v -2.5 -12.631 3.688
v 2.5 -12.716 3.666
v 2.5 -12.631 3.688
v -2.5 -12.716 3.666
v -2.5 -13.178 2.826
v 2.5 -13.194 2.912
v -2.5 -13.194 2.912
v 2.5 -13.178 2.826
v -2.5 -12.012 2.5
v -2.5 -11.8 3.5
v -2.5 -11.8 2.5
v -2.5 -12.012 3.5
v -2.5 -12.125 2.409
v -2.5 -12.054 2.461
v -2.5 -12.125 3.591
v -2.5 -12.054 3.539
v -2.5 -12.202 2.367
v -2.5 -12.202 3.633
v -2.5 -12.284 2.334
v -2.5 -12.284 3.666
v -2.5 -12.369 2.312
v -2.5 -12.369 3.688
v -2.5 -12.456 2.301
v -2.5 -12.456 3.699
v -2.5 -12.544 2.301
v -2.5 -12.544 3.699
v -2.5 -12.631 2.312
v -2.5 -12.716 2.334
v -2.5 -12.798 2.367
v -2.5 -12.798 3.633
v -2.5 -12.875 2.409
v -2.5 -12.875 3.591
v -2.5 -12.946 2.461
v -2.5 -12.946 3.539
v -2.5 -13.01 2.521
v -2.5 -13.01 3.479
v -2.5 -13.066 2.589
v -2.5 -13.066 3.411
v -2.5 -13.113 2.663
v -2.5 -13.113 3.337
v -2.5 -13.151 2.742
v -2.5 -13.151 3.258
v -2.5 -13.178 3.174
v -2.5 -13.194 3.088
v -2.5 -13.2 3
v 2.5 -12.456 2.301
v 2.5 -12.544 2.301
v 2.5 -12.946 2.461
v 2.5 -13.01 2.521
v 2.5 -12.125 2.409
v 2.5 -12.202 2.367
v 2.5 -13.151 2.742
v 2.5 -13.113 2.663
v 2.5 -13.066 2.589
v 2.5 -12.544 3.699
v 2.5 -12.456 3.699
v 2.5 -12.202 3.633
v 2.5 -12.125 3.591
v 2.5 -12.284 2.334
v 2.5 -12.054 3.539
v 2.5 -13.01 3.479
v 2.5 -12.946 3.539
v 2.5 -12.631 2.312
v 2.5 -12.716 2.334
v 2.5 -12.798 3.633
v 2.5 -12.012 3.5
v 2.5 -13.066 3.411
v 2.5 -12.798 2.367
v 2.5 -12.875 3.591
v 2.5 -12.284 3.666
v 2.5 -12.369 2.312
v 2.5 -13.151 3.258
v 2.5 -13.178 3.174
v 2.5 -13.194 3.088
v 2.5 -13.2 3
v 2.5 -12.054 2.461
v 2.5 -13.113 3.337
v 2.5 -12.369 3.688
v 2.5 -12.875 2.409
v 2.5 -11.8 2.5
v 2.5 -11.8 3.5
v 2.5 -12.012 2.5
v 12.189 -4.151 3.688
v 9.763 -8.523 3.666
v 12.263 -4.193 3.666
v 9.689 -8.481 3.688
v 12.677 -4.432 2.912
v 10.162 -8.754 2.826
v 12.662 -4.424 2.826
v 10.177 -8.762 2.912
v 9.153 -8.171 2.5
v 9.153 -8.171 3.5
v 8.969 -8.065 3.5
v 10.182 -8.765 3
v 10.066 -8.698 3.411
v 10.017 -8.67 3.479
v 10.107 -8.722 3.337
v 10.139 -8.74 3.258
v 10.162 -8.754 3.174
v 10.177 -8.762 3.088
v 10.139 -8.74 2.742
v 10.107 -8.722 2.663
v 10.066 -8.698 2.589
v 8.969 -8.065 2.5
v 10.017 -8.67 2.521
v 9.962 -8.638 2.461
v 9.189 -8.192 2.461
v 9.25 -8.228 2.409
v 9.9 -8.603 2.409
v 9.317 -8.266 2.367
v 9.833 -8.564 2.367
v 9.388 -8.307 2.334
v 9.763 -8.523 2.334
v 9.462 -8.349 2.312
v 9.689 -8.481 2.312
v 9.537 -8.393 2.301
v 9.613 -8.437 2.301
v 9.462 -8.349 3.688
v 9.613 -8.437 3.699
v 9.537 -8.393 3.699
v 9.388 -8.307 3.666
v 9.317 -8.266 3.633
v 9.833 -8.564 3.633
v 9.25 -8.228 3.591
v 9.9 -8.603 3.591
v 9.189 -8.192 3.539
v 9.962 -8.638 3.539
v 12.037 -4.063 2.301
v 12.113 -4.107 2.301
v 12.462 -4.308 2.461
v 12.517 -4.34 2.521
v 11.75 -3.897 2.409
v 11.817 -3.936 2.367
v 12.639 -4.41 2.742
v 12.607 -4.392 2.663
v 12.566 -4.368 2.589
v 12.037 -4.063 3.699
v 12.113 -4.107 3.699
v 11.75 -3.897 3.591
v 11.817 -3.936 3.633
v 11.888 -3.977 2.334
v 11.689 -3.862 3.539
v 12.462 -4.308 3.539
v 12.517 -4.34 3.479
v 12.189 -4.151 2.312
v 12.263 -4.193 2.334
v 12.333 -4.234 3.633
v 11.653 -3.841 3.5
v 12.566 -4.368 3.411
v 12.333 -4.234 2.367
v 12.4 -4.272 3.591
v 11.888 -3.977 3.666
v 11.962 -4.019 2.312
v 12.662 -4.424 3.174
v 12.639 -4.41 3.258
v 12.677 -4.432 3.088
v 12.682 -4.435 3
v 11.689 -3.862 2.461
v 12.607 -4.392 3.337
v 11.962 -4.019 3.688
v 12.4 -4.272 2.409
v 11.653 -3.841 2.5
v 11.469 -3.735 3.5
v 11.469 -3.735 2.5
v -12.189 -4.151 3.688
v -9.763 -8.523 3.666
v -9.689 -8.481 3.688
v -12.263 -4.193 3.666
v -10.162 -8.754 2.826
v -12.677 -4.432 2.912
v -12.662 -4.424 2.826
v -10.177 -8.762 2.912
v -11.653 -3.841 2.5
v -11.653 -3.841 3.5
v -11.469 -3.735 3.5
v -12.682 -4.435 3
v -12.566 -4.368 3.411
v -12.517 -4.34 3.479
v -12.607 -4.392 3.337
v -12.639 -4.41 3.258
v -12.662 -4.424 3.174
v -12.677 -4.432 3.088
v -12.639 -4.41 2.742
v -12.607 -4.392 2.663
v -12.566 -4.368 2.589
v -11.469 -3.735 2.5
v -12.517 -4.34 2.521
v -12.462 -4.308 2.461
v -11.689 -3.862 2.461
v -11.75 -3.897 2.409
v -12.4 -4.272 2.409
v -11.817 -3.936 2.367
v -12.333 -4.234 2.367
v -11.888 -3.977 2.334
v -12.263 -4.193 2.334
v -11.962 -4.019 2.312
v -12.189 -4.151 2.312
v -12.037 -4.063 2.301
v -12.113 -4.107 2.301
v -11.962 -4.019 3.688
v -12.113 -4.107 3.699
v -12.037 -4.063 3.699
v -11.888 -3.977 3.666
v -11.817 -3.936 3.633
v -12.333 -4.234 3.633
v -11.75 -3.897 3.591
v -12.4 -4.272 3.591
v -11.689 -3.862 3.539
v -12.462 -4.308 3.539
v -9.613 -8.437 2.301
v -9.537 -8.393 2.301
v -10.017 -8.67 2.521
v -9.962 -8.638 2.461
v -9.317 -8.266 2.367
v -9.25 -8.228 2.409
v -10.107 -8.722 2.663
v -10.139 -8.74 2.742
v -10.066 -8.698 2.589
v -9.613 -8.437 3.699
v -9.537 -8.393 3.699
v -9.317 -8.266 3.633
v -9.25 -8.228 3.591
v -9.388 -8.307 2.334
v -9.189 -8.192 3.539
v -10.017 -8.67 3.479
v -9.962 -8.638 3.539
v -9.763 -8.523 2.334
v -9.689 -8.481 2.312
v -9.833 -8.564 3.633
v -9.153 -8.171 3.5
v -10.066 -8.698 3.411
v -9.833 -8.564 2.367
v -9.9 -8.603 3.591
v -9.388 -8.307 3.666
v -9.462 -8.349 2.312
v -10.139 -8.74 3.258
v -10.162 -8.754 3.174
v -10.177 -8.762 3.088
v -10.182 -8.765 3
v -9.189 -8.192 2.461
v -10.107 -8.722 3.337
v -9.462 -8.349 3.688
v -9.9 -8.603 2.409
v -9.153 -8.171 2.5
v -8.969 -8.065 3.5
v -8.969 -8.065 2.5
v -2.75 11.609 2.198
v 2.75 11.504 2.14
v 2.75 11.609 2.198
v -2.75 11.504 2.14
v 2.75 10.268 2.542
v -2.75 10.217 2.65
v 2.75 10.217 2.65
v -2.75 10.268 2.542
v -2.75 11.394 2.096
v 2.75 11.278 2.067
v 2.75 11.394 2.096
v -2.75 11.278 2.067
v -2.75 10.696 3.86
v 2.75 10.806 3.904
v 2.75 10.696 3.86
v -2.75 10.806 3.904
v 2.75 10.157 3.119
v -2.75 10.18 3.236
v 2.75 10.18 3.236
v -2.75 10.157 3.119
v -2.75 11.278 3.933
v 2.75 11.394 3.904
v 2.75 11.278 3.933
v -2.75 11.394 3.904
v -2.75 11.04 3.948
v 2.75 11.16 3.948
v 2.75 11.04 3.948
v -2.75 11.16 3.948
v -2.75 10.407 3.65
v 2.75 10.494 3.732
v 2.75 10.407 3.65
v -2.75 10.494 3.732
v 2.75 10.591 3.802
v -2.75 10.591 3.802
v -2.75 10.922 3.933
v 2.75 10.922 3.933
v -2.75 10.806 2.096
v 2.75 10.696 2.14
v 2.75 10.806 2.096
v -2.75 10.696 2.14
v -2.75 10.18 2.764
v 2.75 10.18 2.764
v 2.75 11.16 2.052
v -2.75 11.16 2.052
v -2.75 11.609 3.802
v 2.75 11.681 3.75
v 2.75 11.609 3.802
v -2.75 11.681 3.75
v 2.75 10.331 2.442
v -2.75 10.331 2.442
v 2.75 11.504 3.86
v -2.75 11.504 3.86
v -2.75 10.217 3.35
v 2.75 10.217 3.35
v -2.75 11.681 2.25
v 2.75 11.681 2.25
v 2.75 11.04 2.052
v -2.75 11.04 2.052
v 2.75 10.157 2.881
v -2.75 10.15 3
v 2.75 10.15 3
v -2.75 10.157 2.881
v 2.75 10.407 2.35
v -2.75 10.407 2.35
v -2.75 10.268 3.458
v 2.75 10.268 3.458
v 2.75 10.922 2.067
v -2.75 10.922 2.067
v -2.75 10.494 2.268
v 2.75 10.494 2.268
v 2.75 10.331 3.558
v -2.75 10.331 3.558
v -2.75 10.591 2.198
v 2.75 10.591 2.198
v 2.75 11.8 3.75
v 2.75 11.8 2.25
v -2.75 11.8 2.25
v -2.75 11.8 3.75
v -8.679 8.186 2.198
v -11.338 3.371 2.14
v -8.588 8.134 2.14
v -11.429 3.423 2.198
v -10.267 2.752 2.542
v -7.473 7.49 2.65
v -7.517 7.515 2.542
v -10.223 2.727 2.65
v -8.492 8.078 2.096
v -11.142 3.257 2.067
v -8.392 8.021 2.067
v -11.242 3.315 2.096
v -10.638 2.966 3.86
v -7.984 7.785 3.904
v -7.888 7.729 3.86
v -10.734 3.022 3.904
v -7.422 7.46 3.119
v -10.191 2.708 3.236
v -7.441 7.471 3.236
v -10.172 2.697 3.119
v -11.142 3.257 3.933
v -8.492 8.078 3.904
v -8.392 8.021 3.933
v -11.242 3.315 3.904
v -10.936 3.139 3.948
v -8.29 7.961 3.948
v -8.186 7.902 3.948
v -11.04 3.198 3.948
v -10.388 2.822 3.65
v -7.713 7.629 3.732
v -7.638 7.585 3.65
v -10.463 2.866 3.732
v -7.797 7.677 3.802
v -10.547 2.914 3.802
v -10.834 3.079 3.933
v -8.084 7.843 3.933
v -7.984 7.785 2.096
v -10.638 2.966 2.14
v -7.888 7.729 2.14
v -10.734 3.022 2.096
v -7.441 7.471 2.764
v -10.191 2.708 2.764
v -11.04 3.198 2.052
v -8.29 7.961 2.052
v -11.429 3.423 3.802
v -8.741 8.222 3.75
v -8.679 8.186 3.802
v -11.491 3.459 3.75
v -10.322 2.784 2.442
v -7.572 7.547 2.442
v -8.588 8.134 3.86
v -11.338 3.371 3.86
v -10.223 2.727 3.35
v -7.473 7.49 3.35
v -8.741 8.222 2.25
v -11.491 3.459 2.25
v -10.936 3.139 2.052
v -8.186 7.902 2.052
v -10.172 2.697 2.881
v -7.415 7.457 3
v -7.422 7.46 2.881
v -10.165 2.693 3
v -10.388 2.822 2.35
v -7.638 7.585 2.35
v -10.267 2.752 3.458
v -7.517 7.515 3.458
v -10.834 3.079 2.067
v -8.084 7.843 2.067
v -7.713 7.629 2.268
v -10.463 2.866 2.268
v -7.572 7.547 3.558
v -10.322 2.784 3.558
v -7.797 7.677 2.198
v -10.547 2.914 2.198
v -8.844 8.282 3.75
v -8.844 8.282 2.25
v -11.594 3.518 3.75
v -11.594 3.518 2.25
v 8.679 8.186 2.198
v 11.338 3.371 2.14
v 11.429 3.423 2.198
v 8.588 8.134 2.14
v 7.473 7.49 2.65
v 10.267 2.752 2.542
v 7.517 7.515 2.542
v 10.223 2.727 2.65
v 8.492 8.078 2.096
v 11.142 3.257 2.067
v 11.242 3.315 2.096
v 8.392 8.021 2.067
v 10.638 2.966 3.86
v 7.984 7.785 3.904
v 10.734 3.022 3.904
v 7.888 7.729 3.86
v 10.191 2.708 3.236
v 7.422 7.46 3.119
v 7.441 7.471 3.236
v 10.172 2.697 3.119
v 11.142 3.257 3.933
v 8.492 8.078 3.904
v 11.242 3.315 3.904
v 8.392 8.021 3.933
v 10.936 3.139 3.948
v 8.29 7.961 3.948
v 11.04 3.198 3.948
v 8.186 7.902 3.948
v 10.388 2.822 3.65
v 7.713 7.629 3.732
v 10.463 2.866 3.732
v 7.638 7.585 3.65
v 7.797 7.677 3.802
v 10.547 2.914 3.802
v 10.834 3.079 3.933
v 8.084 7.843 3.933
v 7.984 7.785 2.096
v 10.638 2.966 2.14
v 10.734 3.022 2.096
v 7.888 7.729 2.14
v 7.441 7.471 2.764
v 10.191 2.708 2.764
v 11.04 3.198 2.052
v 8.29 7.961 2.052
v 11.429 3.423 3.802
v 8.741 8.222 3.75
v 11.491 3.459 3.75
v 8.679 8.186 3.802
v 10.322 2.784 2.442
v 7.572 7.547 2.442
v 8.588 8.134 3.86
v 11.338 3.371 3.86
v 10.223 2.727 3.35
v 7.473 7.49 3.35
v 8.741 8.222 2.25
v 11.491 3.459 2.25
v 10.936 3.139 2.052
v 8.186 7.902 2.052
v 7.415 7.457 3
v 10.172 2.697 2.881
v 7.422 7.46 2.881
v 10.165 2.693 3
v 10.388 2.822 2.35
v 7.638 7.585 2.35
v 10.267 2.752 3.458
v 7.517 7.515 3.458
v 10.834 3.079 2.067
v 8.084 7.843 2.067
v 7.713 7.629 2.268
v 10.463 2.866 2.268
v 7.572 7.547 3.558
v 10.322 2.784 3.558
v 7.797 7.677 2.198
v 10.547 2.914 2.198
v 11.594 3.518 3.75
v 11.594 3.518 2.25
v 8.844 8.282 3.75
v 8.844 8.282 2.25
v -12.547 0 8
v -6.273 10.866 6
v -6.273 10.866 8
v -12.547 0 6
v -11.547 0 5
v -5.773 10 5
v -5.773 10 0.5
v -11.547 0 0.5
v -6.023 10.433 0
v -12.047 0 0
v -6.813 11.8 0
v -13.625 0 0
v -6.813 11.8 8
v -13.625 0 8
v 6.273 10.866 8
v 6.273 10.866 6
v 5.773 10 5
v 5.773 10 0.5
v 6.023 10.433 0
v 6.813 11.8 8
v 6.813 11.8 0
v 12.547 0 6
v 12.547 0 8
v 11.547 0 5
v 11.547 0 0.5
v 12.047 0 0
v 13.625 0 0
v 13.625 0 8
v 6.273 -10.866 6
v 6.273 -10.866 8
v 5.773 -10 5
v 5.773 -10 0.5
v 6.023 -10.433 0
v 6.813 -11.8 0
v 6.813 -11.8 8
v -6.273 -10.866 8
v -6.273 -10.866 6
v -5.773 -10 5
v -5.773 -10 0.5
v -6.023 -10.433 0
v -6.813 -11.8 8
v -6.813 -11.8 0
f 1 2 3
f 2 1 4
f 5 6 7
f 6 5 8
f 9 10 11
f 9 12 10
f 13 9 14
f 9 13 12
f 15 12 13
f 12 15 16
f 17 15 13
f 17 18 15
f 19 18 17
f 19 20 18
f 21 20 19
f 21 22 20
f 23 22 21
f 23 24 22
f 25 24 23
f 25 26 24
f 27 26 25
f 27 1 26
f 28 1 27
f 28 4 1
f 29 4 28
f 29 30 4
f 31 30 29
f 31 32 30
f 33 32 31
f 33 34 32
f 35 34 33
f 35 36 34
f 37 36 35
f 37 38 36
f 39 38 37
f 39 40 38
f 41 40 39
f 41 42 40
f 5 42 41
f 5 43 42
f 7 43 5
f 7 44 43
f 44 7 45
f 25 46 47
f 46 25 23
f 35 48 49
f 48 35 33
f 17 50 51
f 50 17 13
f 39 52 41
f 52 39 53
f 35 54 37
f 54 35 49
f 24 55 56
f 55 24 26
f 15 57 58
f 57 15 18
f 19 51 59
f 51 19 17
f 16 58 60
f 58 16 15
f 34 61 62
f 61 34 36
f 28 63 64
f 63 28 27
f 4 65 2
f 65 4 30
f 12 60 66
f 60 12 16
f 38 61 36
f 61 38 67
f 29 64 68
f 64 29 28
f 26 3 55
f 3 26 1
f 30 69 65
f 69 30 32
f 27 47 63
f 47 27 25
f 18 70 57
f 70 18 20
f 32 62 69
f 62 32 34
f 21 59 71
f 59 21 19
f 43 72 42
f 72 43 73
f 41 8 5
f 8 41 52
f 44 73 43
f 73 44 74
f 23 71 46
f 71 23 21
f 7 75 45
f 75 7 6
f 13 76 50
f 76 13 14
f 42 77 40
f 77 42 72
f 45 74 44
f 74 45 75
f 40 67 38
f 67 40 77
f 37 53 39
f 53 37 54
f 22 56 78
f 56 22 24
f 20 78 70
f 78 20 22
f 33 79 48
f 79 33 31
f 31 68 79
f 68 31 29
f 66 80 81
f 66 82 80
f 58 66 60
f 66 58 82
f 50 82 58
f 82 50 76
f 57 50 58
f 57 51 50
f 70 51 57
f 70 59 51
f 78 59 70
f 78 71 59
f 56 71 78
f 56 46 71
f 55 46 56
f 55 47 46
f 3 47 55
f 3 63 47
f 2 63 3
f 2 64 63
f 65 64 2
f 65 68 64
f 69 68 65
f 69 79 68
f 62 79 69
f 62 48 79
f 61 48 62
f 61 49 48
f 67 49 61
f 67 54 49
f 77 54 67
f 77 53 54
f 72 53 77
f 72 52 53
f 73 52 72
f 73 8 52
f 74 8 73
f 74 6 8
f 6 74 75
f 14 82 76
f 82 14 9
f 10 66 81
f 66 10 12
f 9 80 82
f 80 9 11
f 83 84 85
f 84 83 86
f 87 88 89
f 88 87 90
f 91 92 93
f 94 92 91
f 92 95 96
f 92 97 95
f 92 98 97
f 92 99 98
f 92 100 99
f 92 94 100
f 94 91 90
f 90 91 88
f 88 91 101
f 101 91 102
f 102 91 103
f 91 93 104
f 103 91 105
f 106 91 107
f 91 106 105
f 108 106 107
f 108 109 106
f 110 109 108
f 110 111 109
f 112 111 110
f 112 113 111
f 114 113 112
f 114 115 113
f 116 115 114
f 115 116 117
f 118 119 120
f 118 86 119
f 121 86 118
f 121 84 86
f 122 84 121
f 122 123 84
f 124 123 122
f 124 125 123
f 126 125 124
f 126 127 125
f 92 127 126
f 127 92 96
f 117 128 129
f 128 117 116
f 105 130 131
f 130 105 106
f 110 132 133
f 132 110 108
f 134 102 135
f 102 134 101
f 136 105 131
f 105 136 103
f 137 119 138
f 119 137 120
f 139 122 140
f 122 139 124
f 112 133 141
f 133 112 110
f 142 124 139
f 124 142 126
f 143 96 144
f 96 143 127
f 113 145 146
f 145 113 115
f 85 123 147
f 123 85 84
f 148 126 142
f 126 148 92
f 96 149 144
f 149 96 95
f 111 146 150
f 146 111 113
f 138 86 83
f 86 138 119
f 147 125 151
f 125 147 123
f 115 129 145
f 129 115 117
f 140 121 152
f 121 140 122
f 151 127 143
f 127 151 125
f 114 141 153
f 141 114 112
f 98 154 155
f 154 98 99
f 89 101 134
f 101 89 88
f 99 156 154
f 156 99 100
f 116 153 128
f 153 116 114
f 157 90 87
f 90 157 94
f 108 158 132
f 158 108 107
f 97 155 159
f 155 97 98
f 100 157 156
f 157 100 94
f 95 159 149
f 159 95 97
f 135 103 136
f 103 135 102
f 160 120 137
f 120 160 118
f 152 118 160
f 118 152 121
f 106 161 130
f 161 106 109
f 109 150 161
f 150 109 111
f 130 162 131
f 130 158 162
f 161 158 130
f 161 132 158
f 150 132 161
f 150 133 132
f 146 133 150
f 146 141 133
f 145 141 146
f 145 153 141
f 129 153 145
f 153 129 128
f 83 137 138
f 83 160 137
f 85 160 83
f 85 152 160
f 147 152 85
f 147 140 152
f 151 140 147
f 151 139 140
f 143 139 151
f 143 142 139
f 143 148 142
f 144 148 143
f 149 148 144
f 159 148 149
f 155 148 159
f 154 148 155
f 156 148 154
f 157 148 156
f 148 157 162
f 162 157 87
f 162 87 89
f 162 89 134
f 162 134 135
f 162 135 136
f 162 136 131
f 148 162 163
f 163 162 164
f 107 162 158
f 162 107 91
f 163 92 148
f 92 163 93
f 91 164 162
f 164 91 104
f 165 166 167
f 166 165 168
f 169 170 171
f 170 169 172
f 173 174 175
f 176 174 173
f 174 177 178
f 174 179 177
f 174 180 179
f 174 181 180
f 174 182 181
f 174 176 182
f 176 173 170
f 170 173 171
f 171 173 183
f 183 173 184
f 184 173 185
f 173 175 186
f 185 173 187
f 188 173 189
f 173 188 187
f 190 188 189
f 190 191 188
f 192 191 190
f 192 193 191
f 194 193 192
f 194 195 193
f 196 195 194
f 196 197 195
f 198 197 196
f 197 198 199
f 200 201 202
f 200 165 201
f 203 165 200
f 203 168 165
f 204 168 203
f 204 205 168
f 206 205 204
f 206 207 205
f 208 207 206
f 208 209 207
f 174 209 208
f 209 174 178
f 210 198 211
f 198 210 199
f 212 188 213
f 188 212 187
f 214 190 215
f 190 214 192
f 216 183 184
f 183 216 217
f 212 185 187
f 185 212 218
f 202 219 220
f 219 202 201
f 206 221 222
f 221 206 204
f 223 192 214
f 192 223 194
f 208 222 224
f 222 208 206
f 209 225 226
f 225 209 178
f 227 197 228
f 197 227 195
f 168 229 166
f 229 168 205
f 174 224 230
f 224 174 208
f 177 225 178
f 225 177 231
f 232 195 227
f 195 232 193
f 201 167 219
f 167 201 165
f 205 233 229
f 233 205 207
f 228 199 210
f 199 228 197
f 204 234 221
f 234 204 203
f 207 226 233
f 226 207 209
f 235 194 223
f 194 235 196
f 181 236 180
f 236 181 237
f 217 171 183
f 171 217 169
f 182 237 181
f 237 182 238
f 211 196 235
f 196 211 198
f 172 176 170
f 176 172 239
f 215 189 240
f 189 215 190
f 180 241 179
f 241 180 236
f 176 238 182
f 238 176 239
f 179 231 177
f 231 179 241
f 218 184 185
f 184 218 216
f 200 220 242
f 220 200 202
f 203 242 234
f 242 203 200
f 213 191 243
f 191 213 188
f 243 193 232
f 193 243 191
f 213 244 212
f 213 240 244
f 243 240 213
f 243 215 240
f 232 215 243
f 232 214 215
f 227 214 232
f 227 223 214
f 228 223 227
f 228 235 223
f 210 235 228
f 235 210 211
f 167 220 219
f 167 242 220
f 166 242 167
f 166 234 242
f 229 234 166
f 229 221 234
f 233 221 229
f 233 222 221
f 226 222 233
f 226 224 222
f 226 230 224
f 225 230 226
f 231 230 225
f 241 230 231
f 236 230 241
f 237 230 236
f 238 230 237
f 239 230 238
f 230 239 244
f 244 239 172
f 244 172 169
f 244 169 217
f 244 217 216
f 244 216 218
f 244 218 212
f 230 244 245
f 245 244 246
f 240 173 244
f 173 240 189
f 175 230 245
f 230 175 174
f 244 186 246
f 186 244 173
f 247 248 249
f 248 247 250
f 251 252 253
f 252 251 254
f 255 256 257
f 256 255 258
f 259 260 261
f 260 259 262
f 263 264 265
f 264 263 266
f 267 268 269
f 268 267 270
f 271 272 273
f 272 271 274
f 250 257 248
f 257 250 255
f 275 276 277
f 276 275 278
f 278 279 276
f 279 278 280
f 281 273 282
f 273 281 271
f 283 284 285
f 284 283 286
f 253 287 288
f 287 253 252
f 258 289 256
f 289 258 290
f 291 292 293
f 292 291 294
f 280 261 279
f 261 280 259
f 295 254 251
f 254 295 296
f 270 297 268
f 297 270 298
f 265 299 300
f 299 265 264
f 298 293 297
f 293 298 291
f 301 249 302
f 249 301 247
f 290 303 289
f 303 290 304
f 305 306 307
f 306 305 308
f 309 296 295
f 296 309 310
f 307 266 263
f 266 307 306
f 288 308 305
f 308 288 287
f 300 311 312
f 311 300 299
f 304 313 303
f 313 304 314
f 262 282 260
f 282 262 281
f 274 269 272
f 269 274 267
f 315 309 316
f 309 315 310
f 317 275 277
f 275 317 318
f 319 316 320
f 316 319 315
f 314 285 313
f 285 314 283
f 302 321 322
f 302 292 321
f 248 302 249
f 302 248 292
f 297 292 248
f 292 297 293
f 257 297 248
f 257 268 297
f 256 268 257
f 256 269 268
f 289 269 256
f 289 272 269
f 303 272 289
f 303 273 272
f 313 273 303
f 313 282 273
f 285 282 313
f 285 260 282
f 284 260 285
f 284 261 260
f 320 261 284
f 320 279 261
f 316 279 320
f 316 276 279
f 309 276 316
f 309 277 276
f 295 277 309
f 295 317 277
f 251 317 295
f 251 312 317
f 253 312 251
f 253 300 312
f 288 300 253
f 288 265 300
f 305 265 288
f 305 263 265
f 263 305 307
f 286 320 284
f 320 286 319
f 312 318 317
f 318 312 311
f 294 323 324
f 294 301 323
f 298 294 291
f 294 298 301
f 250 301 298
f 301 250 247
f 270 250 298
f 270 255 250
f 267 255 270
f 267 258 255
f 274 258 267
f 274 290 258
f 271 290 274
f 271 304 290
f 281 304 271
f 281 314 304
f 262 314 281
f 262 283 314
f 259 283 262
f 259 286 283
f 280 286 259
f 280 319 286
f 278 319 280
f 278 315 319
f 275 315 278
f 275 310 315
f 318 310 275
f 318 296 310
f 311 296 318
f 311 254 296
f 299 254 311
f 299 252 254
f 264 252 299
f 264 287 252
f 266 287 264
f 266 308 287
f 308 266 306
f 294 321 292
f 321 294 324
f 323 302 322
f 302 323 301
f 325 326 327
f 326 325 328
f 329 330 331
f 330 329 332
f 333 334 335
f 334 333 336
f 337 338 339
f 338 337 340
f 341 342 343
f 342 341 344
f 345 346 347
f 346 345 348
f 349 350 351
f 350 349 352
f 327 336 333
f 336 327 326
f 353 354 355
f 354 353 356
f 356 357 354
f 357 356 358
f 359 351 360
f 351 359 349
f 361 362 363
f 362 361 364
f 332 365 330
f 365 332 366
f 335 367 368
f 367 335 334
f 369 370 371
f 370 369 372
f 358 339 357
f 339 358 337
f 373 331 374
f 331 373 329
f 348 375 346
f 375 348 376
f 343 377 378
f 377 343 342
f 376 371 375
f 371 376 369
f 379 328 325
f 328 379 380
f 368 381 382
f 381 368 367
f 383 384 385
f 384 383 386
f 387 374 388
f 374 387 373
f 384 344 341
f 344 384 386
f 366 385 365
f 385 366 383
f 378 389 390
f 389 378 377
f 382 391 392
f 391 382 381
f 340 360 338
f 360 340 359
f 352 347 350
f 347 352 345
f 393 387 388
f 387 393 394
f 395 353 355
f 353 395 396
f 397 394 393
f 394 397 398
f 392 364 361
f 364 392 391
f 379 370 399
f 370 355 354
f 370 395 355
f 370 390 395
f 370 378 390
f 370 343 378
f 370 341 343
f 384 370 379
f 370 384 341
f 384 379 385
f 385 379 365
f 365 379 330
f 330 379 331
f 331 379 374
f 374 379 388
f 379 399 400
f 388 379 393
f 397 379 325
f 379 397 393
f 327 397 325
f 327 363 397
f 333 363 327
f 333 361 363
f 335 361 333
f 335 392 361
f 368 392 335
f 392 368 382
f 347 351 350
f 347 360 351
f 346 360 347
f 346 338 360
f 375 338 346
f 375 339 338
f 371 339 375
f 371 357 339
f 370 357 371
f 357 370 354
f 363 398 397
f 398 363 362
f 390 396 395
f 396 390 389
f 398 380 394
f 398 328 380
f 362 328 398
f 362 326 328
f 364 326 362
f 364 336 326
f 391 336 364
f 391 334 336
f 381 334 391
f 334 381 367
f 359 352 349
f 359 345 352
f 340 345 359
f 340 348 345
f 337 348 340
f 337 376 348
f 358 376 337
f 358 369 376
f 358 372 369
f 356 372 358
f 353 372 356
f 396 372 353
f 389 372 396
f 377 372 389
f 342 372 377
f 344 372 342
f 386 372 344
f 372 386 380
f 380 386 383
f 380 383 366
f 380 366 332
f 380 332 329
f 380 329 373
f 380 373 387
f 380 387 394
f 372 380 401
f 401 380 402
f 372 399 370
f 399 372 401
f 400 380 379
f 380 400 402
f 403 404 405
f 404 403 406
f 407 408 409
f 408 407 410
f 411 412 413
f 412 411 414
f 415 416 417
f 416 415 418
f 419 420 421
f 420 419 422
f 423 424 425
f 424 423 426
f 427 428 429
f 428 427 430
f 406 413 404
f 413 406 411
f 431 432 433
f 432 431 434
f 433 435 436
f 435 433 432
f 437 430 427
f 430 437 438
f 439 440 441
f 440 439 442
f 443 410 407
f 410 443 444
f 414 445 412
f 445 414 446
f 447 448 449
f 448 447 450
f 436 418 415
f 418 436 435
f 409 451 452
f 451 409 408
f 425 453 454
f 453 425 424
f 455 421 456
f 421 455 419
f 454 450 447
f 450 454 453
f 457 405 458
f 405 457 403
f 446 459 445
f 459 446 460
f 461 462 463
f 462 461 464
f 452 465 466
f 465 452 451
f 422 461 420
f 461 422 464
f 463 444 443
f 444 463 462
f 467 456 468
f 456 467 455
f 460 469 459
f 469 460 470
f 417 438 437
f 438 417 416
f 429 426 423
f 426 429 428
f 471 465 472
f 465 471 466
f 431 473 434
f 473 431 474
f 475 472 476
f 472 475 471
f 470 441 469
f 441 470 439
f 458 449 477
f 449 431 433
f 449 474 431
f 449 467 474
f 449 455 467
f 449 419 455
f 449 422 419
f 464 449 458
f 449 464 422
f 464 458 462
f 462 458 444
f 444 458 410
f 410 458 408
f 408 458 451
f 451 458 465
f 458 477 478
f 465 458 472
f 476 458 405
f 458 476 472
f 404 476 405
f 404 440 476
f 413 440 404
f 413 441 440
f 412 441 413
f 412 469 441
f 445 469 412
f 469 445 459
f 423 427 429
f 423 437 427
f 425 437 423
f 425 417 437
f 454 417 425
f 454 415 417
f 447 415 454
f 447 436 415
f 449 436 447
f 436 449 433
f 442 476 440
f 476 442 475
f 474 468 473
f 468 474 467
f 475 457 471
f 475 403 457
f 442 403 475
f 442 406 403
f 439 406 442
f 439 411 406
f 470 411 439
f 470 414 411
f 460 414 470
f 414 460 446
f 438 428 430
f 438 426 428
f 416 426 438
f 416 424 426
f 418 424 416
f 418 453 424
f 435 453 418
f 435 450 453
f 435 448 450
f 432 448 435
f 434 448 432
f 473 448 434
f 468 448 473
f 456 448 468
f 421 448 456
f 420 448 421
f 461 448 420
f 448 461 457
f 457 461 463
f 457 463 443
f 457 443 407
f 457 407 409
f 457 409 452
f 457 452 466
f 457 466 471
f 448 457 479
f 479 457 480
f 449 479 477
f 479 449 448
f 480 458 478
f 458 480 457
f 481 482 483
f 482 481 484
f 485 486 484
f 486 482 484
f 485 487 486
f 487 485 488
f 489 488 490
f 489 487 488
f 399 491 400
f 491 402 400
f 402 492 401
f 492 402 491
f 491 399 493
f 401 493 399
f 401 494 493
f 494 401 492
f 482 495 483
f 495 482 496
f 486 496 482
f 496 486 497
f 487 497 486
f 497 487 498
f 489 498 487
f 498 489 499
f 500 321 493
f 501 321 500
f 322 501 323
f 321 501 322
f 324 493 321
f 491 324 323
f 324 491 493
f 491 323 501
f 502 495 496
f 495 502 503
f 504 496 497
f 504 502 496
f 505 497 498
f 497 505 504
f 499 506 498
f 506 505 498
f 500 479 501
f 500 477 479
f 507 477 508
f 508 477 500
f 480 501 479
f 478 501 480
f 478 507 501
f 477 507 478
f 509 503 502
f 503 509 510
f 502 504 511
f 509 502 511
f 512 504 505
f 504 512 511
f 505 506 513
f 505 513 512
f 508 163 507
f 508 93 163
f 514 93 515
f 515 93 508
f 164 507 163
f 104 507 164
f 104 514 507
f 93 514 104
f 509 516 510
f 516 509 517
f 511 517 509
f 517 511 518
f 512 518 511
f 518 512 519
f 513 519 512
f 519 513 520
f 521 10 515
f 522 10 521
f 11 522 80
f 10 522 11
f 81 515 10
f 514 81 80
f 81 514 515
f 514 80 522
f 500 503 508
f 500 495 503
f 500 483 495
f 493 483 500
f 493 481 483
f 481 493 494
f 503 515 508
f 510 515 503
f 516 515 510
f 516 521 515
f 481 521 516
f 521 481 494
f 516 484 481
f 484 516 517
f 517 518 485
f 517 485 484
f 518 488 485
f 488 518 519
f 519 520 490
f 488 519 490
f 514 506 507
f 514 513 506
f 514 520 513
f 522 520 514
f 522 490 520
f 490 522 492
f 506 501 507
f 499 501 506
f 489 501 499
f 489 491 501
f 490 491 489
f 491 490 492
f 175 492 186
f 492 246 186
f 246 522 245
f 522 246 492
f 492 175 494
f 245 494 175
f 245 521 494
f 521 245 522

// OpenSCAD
$fn = 50;

//diameter =  (12.2)*sqrt(5);
radius = 13.6;
diameter =  radius * 2;


module imported_model() {

difference() {
intersection() {
cube([100, 150, 150], center=true);

translate([-1.5, -4.8, 0])
import("wall-honeycomb-part.stl");
    
}

translate([-0.9+radius, diameter/2, 3]) {
  clipse_inverse(0.1);
}

translate([-0.9+radius, diameter*2, 3]) {
  clipse_inverse(0.1);
}

}


translate([-0.9, diameter + radius/2, 3]) {
  clipse();
}

}

//imported_model();


module clipse (offset=0) {
  rotate([90, 0, 90])
  union() {
  cylinder(r=0.7+offset, h=5+offset*2, center=true);
  translate([0.8, 0, 0])
    cube([0.8, 1+offset*2, 5+offset*2], center=true);
  }
}

module clipse_inverse(offset=0) {
  scale([-1, 1, 1])  
    clipse(offset);
}

h_inner = 10;
r_inner = h_inner * 2/sqrt(3);

h_outer = 10+1.8;
r_outer = h_outer * 2/sqrt(3);


h_thin = 10+1;
r_thin = h_thin * 2/sqrt(3);

total_height = 8;

small_value = 0.1;

module model_new() {
    
    
    difference() {
      linear_extrude(8, center= true)
    polygon([[-r_outer/2,-h_outer], [-r_outer,0], [-r_outer/2,h_outer], [r_outer/2,h_outer], [r_outer,0], [r_outer/2,-h_outer]]);
      
        
    linear_extrude(8+small_value, center=true)
    polygon([[-r_thin/2,-h_thin], [-r_thin,0], [-r_thin/2,h_thin], [r_thin/2,h_thin], [r_thin,0], [r_thin/2,-h_thin]]);
    }
    
    difference() {
      linear_extrude(5, center= true)
    polygon([[-r_outer/2,-h_outer], [-r_outer,0], [-r_outer/2,h_outer], [r_outer/2,h_outer], [r_outer,0], [r_outer/2,-h_outer]]);
      
        
        linear_extrude(5+small_value, center=true)
    polygon([[-r_inner/2,-h_inner], [-r_inner,0], [-r_inner/2,h_inner], [r_inner/2,h_inner], [r_inner,0], [r_inner/2,-h_inner]]);
        
    }
}


module model_rotate() {
    rotate_extrude($fn=6) {
    polygon([[r_outer, total_height], [r_outer, 0], [r_inner+0.5, 0], [r_inner, 0.5], 
        [r_inner, total_height-3], [r_inner+1, total_height-2], [r_inner+1, total_height]]);
    }
}


//model_new();

translate([0, -h_outer-0.7, 3])
clipse();

rotate([0, 0, 60])
translate([0, -h_outer-0.7, 3])
clipse();

rotate([0, 0, -60])
translate([0, -h_outer-0.7, 3])
clipse();

difference() {
model_rotate();


translate([0, h_outer-0.7, 3])
clipse_inverse(0.25);

rotate([0, 0, 60])
translate([0, h_outer-0.7, 3])
clipse_inverse(0.25);

rotate([0, 0, -60])
translate([0, h_outer-0.7, 3])
clipse_inverse(0.25);
}

//translate([0, h_outer*2, 0])
//  model_rotate();

//translate([r_outer*1.5, h_outer, 0])
//  model_rotate();

//clipse(0.1);


//translate([-0.9, diameter + radius/2, 3]) {
//}

//translate([0, 34.1, 0])
//cube([4, 13.6, 1], center=true);
